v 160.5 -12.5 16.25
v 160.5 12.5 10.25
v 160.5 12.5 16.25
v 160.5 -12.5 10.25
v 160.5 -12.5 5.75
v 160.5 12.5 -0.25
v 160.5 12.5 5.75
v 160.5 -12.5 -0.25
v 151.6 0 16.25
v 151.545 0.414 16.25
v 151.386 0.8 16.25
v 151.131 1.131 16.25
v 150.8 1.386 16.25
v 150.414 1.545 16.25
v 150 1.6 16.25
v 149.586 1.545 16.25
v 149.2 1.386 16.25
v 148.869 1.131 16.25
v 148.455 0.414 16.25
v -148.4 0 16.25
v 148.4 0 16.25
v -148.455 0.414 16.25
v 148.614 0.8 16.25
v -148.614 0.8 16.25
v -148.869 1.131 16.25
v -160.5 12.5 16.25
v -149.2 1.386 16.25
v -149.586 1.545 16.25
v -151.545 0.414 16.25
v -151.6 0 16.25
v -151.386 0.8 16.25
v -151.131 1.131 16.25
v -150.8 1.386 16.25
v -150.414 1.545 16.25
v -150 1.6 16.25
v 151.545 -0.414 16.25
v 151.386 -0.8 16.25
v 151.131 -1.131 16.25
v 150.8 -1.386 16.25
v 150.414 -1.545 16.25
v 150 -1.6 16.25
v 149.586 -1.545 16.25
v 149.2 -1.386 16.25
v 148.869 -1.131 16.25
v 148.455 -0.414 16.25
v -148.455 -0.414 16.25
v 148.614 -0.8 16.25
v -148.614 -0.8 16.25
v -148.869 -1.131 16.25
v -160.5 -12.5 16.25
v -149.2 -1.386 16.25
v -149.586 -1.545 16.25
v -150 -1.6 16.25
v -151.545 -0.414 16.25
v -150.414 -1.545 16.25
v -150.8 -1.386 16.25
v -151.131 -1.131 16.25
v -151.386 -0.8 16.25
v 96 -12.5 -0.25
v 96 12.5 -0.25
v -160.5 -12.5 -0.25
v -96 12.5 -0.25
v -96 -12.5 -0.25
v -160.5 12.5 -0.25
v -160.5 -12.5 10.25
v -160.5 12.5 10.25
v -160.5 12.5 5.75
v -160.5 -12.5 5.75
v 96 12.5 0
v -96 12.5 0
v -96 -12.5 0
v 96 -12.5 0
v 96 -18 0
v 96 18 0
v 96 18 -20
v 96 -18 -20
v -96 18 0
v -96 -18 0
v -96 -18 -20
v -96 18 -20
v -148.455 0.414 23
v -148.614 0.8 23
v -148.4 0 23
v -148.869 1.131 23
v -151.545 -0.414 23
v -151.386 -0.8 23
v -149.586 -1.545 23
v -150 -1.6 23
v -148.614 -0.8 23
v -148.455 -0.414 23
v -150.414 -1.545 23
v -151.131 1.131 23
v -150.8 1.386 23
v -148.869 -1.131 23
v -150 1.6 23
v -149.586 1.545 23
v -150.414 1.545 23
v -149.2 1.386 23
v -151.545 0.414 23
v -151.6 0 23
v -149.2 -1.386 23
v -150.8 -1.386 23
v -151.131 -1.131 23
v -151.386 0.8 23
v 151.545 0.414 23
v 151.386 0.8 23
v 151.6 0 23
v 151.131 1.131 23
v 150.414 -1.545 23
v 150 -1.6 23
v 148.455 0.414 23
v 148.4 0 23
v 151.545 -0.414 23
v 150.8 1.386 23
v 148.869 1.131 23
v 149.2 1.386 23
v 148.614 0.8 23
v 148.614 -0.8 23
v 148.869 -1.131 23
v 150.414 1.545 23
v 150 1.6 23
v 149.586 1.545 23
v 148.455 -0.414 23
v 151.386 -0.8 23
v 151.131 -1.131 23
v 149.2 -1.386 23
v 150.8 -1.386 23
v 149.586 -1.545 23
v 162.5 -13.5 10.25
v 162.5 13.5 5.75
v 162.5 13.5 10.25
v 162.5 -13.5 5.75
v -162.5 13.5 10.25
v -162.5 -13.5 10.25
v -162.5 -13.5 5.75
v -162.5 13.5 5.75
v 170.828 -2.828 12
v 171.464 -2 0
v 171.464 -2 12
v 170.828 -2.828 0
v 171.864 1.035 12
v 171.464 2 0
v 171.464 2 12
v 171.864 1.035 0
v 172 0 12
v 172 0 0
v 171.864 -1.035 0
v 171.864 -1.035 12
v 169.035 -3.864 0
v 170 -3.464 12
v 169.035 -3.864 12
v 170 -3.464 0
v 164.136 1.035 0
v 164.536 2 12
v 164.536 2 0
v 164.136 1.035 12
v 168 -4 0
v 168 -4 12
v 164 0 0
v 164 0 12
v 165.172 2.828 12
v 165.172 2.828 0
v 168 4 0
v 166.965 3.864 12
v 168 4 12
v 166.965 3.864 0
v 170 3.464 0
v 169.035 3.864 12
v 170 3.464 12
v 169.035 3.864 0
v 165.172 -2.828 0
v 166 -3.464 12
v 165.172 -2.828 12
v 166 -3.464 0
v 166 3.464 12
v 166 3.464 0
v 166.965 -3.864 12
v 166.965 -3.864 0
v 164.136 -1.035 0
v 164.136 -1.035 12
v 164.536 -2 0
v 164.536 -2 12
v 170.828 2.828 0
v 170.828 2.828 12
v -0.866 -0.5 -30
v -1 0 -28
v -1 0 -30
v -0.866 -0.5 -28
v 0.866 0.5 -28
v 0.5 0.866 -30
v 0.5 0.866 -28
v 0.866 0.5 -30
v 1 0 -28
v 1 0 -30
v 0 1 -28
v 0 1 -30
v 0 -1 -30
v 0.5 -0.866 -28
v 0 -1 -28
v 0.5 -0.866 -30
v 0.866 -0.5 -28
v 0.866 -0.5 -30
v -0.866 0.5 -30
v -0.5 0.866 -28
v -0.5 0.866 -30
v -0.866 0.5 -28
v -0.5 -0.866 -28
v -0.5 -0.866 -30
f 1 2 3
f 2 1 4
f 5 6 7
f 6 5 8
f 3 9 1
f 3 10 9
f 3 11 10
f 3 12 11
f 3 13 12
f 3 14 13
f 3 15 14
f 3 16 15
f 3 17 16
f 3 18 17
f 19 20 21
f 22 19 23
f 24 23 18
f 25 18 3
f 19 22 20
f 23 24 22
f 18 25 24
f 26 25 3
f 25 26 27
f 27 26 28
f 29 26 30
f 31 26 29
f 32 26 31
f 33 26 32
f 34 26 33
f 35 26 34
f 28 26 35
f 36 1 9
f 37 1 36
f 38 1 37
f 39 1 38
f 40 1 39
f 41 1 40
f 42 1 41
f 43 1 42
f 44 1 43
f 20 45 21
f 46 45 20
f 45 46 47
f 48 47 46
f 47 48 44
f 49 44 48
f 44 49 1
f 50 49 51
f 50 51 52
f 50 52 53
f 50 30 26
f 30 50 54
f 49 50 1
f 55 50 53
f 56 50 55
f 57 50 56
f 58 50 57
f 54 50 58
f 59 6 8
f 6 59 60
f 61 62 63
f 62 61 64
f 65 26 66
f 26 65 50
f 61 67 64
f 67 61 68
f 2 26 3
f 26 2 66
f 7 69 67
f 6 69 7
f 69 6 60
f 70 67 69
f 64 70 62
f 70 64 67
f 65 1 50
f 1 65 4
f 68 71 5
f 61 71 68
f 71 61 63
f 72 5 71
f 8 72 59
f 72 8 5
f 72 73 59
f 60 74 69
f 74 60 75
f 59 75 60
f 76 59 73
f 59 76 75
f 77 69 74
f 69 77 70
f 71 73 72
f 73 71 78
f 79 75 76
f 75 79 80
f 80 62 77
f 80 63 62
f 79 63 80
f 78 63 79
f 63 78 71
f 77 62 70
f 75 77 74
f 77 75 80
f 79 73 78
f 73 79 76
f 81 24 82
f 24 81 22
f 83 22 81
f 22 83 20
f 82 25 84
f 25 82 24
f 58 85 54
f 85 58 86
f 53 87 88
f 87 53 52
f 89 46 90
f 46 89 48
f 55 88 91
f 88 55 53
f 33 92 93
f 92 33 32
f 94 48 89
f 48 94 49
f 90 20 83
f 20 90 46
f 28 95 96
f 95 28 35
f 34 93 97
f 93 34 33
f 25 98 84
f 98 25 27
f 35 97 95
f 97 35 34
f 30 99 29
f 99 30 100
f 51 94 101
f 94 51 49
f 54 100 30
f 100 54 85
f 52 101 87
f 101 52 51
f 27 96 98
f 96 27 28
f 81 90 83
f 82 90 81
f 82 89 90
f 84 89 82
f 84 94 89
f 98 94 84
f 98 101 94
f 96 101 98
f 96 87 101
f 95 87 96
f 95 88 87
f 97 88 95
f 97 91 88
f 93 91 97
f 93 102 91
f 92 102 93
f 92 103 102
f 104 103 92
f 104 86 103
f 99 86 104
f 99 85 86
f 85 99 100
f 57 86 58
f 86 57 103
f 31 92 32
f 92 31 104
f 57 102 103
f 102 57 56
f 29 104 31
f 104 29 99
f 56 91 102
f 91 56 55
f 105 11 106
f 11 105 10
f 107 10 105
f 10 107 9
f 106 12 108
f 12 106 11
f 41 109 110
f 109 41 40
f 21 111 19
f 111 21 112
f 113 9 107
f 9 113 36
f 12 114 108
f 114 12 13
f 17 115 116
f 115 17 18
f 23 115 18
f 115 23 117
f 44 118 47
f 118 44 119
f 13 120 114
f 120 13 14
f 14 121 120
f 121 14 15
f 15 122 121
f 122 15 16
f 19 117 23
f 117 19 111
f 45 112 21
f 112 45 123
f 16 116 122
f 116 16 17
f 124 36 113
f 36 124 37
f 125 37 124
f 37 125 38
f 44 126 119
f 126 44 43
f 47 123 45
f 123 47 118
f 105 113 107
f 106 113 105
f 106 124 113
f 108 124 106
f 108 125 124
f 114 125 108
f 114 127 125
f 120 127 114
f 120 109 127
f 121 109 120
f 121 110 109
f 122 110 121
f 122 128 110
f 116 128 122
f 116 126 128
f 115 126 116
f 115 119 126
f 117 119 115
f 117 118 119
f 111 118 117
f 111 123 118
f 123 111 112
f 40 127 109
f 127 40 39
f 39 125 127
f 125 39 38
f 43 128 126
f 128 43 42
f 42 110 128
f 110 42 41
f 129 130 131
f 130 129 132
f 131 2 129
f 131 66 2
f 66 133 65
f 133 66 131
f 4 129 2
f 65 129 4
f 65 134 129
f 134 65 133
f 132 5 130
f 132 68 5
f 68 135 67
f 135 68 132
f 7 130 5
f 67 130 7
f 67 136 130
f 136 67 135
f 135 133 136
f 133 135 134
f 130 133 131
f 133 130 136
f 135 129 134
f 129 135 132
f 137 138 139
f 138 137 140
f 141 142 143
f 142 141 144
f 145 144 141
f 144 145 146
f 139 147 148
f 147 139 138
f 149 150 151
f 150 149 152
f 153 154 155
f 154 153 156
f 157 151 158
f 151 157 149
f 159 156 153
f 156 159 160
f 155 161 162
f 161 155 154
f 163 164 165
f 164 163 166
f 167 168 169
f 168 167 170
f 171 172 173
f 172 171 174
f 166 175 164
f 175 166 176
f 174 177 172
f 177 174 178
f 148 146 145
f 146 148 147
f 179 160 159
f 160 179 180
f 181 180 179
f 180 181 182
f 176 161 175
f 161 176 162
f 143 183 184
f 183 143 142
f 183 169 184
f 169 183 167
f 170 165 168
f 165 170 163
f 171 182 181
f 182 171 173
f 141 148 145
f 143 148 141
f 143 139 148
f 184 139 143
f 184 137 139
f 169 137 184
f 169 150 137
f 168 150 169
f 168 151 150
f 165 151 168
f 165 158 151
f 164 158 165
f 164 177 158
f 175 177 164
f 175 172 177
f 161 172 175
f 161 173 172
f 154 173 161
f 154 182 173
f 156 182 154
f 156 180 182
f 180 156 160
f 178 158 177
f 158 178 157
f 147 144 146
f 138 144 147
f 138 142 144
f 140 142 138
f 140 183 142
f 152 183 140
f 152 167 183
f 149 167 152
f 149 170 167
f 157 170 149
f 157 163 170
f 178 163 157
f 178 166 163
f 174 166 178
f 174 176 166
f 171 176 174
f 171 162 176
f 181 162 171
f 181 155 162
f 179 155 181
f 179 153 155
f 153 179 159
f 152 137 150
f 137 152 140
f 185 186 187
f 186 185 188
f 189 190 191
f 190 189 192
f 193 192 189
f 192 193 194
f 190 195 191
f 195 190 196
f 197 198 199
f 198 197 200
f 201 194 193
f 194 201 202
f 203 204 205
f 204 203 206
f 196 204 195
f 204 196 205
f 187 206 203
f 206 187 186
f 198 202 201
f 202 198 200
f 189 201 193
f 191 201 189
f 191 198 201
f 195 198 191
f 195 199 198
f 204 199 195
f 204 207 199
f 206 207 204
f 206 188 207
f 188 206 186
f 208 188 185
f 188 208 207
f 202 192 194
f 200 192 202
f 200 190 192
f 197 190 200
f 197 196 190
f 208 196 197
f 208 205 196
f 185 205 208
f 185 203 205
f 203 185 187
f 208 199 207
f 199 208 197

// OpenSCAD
// readingcore-01-keepout.scad
// IDB-6C CAD Export Demo Pack
// ReadingCore-01 固定灯芯模块占位/隔离几何
// 说明：该文件定义了 ReadingCore-01 在物理空间中不可被外壳侵犯的区域。
//       任何外壳设计必须保证该 keepout 体积完整，并在外侧预留装配余量。
//       所有尺寸均为示意值（mock geometry），需用真实工程尺寸替换。

// 是否只显示线框（便于叠加查看）
show_wireframe = false;

// ReadingCore-01 核心尺寸（示意）
core_length = 320;      // 铝槽+LED 总长，单位 mm
core_width  =  24;      // 铝槽宽度
core_height =  12;      // 铝槽+LED 高度（不含扩散罩）
diffuser_height = 4;    // 乳白扩散罩额外高度

// 安装接口
mount_hole_diameter = 3.2;  // M3 螺丝通孔直径
mount_hole_spacing  = 300;  // 两端安装孔中心距
base_offset_z = -20;        // 底座/支架在铝槽下方的占位

// 总 keepout 尺寸
total_width  = core_width + 2 * 0.5;   // 两侧各留 0.5mm 间隙
total_height = core_height + diffuser_height + 0.5;
total_length = core_length + 2 * 0.5;

module readingcore_keepout() {
    color("DarkOrange", 0.35) {
        // 主散热铝槽 + LED + 扩散罩占位
        translate([0, 0, core_height/2 + diffuser_height/2])
            cube([total_length, total_width, total_height], center=true);

        // 底座/支架占位（示意，避免外壳压迫支架）
        translate([0, 0, base_offset_z/2])
            cube([core_length * 0.6, core_width * 1.5, abs(base_offset_z)], center=true);
    }

    if (show_wireframe) {
        %translate([0, 0, core_height/2 + diffuser_height/2])
            cube([total_length, total_width, total_height], center=true);
    }
}

// 扩散罩槽（外壳内壁应避让的槽）
module diffuser_slot() {
    color("LightBlue", 0.3)
        translate([0, 0, core_height/2 + diffuser_height/2])
            cube([total_length + 4, total_width + 2, diffuser_height + 0.5], center=true);
}

// M3 安装孔标记（表示不可遮挡）
module m3_mount_holes() {
    for (x = [-mount_hole_spacing/2, mount_hole_spacing/2]) {
        translate([x, 0, core_height + diffuser_height + 2])
            color("Red", 0.6)
                cylinder(h = 10, d = mount_hole_diameter, $fn = 24, center = true);
    }
}

// 线缆出口（外壳需为电源线留出的孔）
module cable_exit() {
    color("Yellow", 0.5)
        translate([core_length/2 + 8, 0, core_height/2])
            cylinder(h = 12, d = 8, $fn = 24, center = true);
}

// 装配原点标记
module origin_marker() {
    color("Black") {
        translate([0, 0, -30]) cylinder(h=2, d=2, $fn=12);
    }
}

readingcore_keepout();
diffuser_slot();
m3_mount_holes();
cable_exit();
origin_marker();

// 可选：导出时仅使用 keepout 主体即可
// 使用示例：
//   openscad -o readingcore-01-keepout.stl readingcore-01-keepout.scad
